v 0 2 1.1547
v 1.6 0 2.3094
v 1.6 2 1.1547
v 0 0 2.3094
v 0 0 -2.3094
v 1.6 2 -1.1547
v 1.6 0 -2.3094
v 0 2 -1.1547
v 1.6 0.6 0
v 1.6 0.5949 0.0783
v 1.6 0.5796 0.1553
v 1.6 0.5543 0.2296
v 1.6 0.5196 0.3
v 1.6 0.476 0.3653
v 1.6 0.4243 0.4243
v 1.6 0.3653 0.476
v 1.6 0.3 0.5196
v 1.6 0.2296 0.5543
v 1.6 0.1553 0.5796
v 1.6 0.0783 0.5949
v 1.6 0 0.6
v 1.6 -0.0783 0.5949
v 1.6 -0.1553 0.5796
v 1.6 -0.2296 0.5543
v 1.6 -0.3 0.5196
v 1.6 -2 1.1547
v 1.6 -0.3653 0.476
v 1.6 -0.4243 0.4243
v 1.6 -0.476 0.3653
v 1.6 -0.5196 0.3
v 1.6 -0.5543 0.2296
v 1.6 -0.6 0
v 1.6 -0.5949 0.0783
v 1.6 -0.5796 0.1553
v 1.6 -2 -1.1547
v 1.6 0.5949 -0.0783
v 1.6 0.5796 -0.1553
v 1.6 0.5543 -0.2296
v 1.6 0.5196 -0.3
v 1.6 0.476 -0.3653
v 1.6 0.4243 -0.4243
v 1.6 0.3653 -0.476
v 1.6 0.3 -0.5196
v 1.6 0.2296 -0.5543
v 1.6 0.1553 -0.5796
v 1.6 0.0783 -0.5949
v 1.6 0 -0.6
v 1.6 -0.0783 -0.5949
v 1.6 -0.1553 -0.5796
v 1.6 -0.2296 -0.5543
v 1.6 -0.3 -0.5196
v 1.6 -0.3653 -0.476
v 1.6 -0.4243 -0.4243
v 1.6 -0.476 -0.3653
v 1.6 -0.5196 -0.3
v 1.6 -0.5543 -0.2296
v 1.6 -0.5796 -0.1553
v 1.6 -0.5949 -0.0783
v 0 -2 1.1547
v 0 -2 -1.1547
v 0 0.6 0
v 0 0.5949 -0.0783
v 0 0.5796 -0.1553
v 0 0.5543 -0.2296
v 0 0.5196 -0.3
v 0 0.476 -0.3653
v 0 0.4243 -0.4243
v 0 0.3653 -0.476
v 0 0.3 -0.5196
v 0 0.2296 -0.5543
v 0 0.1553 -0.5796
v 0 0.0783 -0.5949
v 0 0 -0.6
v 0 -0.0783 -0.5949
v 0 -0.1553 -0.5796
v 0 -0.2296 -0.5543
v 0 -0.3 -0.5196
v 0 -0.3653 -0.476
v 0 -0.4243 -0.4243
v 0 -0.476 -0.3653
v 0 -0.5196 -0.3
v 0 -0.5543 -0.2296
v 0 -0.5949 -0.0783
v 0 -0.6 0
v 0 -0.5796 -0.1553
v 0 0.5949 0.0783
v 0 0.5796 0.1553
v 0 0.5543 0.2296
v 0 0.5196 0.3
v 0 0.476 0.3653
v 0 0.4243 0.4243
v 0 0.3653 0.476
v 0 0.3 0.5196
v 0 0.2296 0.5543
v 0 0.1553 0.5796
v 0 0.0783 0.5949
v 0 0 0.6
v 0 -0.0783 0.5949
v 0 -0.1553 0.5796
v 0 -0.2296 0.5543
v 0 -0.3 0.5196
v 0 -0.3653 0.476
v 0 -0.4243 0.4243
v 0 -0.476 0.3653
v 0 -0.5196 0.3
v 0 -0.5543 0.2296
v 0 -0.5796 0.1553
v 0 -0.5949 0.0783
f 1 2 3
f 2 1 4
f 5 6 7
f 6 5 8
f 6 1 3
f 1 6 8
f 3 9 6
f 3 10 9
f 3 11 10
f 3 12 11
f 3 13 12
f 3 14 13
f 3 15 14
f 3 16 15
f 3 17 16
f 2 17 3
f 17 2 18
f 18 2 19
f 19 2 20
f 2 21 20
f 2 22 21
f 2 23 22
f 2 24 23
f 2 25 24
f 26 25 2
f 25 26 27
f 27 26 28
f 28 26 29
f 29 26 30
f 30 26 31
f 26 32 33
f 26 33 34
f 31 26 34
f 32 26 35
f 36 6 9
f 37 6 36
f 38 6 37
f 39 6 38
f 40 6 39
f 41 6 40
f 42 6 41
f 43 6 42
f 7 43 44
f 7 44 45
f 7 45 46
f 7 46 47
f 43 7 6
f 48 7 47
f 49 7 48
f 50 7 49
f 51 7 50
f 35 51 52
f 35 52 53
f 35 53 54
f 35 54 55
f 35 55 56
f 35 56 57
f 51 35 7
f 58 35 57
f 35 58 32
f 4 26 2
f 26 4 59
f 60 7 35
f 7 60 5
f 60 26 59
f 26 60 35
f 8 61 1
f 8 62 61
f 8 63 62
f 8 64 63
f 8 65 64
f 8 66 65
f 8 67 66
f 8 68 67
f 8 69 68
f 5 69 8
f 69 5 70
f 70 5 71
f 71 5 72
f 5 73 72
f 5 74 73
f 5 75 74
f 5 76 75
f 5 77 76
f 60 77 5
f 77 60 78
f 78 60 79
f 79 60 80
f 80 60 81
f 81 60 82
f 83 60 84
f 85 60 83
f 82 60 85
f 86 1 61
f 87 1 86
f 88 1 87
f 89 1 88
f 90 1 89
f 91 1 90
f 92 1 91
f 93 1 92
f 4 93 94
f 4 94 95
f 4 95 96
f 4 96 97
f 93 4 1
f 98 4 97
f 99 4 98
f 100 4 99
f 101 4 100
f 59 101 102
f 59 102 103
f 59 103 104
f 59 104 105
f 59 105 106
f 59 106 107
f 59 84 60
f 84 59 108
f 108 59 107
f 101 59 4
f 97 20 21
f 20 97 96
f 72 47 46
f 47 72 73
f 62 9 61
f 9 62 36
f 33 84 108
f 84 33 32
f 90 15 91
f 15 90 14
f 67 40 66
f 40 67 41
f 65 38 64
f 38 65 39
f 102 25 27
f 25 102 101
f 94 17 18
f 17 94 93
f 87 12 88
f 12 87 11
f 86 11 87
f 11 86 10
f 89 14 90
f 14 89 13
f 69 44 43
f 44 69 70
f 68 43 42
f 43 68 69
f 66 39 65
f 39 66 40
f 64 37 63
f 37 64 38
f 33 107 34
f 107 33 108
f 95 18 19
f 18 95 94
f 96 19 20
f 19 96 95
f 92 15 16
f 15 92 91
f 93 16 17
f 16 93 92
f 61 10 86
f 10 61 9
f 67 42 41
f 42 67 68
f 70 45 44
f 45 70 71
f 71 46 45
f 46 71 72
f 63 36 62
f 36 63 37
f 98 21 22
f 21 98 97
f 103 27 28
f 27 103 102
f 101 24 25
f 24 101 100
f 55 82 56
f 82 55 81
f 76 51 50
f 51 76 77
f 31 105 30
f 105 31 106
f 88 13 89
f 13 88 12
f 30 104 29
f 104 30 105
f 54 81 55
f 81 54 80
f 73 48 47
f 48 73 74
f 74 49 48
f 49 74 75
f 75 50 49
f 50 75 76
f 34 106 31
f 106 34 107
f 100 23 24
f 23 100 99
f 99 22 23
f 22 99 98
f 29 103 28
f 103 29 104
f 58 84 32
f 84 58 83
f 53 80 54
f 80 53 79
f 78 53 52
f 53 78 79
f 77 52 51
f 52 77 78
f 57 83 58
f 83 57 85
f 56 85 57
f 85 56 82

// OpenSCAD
// file: ../../../lib/nutsnbolts/data-access.scad
// Norm Nuts and Bolts - a OpenSCAD library
// Copyright (C) 2012  Johannes Kneer

// This program is free software: you can redistribute it and/or modify
// it under the terms of the GNU General Public License as published by
// the Free Software Foundation, either version 3 of the License, or
// (at your option) any later version.

// This program is distributed in the hope that it will be useful,
// but WITHOUT ANY WARRANTY; without even the implied warranty of
// MERCHANTABILITY or FITNESS FOR A PARTICULAR PURPOSE.  See the
// GNU General Public License for more details.

// You should have received a copy of the GNU General Public License
// along with this program.  If not, see <http://www.gnu.org/licenses/>.


// DATABASE ACCESS FUNCTIONS AND CONSTANTS



// == CONSTANTS ==

// screw table access keys
_NB_S_DESC            = 0;
_NB_S_FAMKEY			    = 1;
_NB_S_LENGTH          = 2;
_NB_S_NOTHREAD_LENGTH = 3;

_NB_F_DESC			      = 0;
_NB_F_OUTER_DIA       = 1;
_NB_F_INNER_DIA       = 2;
_NB_F_LEAD            = 3;
_NB_F_KEY             = 4;
_NB_F_KEY_DEPTH       = 5;
_NB_F_HEAD_HEIGHT     = 6;
_NB_F_HEAD_DIA        = 7;
_NB_F_NUT_KEY         = 8;
_NB_F_NUT_HEIGHT      = 9;
_NB_F_PITCH_FINE      = 10;
_NB_F_PITCH_MEDIUM    = 11;
_NB_F_PITCH_COARSE    = 12;


// == FUNCTIONS ==

// _get_screw("descriptor")   with descriptor = M8x25
//   find the line for a general object in the data matrix

function _get_screw(n) = data_screw[search([n], data_screw)[0]];
function _get_screw_fam(n) = data_screw_fam[search([_get_screw(n)[_NB_S_FAMKEY]], data_screw_fam)[0]];

function _get_fam(n) = data_screw_fam[search([n], data_screw_fam)[0]];


// _get_XXXXX("descriptor") functions
// find a single property in the database

function _get_desc(n)        = _get_screw(n)[_NB_S_DESC];
function _get_famkey(n)         = _get_screw(n)[_NB_S_FAMKEY];
function _get_length(n)      = _get_screw(n)[_NB_S_LENGTH];
function _get_nt_length(n)   = _get_screw(n)[_NB_S_NOTHREAD_LENGTH];

function _get_outer_dia(n)   = _get_screw_fam(n)[_NB_F_OUTER_DIA];
function _get_inner_dia(n)   = _get_screw_fam(n)[_NB_F_INNER_DIA];
function _get_lead(n)        = _get_screw_fam(n)[_NB_F_LEAD];
function _get_head_height(n) = _get_screw_fam(n)[_NB_F_HEAD_HEIGHT];
function _get_head_dia(n)    = _get_screw_fam(n)[_NB_F_HEAD_DIA];
function _get_nut_key(n)     = _get_screw_fam(n)[_NB_F_NUT_KEY];
function _get_nut_height(n)  = _get_screw_fam(n)[_NB_F_NUT_HEIGHT];
function _get_fine_pitch(n)  = _get_screw_fam(n)[_NB_F_PITCH_FINE];
function _get_medium_pitch(n)  = _get_screw_fam(n)[_NB_F_PITCH_MEDIUM];
function _get_coarse_pitch(n)  = _get_screw_fam(n)[_NB_F_PITCH_COARSE];
// main file
/**********************************************************************************************************************
 **
 ** parts/vitamins/nut_M2.scad
 **
 ** This file renders a nut of the dimensions specified by the file name.
 **
 **********************************************************************************************************************/

include <../../../lib/nutsnbolts/cyl_head_bolt.scad>;

$fn = 48;
rotate([0, -90, 0])
	nut("M2"); 
